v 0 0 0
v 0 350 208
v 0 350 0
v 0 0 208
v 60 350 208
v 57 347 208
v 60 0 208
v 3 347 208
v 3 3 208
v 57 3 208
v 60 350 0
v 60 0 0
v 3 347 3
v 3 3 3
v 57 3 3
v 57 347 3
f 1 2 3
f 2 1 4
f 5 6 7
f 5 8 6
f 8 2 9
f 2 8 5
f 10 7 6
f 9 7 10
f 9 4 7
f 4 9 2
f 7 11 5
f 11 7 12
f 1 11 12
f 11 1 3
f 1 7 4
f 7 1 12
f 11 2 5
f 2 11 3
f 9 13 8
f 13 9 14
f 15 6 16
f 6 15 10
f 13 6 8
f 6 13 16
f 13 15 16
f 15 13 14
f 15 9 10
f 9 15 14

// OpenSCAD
// file: ../../modules/hex_grid_v02.scad
module hex(hole, wall, thick){
    hole = hole;
    wall = wall;
    difference(){
        rotate([0, 0, 30]) cylinder(d = (hole + wall), h = thick, $fn = 6);
        translate([0, 0, -0.1]) rotate([0, 0, 30]) cylinder(d = hole, h = thick + 0.2, $fn = 6);
    }
}



module hexgrid(box, holediameter, wallthickness) {
    a = (holediameter + (wallthickness/2))*sin(60);
    for(x = [holediameter/2: a: box[0]]) {
        for(y = [holediameter/2: 2*a*sin(60): box[1]]) {
            translate([x, y, 0]) hex(holediameter, wallthickness, box[2]);
            translate([x + a*cos(60), y + a*sin(60), 0]) hex(holediameter, wallthickness, box[2]);

        }
    }
        
}

// first arg is vector that defines the bounding box, length, width, height
// second arg in the 'diameter' of the holes. In OpenScad, this refers to the corner-to-corner diameter, not flat-to-flat
// this diameter is 2/sqrt(3) times larger than flat to flat
// third arg is wall thickness.  This also is measured that the corners, not the flats. 

hexgrid([25, 25, 1.5], 1, 0.5);


echo(2/sqrt(3));
// main file
use <./../../modules/hex_grid_v02.scad>;

module container() {
    difference() {
        cube([60, 350, 208]);
        translate([3, 3, 3])
        cube([54, 344, 208]);
    }
}

module handle() {
    rotate([-45, 0, 0])
    cube([40, 40, 5]);

    cube([40, 5, 100]);

    translate([0, 0, 100])
    rotate([45, 0, 0])
    cube([40, 40, 5]);
    
}

container();
